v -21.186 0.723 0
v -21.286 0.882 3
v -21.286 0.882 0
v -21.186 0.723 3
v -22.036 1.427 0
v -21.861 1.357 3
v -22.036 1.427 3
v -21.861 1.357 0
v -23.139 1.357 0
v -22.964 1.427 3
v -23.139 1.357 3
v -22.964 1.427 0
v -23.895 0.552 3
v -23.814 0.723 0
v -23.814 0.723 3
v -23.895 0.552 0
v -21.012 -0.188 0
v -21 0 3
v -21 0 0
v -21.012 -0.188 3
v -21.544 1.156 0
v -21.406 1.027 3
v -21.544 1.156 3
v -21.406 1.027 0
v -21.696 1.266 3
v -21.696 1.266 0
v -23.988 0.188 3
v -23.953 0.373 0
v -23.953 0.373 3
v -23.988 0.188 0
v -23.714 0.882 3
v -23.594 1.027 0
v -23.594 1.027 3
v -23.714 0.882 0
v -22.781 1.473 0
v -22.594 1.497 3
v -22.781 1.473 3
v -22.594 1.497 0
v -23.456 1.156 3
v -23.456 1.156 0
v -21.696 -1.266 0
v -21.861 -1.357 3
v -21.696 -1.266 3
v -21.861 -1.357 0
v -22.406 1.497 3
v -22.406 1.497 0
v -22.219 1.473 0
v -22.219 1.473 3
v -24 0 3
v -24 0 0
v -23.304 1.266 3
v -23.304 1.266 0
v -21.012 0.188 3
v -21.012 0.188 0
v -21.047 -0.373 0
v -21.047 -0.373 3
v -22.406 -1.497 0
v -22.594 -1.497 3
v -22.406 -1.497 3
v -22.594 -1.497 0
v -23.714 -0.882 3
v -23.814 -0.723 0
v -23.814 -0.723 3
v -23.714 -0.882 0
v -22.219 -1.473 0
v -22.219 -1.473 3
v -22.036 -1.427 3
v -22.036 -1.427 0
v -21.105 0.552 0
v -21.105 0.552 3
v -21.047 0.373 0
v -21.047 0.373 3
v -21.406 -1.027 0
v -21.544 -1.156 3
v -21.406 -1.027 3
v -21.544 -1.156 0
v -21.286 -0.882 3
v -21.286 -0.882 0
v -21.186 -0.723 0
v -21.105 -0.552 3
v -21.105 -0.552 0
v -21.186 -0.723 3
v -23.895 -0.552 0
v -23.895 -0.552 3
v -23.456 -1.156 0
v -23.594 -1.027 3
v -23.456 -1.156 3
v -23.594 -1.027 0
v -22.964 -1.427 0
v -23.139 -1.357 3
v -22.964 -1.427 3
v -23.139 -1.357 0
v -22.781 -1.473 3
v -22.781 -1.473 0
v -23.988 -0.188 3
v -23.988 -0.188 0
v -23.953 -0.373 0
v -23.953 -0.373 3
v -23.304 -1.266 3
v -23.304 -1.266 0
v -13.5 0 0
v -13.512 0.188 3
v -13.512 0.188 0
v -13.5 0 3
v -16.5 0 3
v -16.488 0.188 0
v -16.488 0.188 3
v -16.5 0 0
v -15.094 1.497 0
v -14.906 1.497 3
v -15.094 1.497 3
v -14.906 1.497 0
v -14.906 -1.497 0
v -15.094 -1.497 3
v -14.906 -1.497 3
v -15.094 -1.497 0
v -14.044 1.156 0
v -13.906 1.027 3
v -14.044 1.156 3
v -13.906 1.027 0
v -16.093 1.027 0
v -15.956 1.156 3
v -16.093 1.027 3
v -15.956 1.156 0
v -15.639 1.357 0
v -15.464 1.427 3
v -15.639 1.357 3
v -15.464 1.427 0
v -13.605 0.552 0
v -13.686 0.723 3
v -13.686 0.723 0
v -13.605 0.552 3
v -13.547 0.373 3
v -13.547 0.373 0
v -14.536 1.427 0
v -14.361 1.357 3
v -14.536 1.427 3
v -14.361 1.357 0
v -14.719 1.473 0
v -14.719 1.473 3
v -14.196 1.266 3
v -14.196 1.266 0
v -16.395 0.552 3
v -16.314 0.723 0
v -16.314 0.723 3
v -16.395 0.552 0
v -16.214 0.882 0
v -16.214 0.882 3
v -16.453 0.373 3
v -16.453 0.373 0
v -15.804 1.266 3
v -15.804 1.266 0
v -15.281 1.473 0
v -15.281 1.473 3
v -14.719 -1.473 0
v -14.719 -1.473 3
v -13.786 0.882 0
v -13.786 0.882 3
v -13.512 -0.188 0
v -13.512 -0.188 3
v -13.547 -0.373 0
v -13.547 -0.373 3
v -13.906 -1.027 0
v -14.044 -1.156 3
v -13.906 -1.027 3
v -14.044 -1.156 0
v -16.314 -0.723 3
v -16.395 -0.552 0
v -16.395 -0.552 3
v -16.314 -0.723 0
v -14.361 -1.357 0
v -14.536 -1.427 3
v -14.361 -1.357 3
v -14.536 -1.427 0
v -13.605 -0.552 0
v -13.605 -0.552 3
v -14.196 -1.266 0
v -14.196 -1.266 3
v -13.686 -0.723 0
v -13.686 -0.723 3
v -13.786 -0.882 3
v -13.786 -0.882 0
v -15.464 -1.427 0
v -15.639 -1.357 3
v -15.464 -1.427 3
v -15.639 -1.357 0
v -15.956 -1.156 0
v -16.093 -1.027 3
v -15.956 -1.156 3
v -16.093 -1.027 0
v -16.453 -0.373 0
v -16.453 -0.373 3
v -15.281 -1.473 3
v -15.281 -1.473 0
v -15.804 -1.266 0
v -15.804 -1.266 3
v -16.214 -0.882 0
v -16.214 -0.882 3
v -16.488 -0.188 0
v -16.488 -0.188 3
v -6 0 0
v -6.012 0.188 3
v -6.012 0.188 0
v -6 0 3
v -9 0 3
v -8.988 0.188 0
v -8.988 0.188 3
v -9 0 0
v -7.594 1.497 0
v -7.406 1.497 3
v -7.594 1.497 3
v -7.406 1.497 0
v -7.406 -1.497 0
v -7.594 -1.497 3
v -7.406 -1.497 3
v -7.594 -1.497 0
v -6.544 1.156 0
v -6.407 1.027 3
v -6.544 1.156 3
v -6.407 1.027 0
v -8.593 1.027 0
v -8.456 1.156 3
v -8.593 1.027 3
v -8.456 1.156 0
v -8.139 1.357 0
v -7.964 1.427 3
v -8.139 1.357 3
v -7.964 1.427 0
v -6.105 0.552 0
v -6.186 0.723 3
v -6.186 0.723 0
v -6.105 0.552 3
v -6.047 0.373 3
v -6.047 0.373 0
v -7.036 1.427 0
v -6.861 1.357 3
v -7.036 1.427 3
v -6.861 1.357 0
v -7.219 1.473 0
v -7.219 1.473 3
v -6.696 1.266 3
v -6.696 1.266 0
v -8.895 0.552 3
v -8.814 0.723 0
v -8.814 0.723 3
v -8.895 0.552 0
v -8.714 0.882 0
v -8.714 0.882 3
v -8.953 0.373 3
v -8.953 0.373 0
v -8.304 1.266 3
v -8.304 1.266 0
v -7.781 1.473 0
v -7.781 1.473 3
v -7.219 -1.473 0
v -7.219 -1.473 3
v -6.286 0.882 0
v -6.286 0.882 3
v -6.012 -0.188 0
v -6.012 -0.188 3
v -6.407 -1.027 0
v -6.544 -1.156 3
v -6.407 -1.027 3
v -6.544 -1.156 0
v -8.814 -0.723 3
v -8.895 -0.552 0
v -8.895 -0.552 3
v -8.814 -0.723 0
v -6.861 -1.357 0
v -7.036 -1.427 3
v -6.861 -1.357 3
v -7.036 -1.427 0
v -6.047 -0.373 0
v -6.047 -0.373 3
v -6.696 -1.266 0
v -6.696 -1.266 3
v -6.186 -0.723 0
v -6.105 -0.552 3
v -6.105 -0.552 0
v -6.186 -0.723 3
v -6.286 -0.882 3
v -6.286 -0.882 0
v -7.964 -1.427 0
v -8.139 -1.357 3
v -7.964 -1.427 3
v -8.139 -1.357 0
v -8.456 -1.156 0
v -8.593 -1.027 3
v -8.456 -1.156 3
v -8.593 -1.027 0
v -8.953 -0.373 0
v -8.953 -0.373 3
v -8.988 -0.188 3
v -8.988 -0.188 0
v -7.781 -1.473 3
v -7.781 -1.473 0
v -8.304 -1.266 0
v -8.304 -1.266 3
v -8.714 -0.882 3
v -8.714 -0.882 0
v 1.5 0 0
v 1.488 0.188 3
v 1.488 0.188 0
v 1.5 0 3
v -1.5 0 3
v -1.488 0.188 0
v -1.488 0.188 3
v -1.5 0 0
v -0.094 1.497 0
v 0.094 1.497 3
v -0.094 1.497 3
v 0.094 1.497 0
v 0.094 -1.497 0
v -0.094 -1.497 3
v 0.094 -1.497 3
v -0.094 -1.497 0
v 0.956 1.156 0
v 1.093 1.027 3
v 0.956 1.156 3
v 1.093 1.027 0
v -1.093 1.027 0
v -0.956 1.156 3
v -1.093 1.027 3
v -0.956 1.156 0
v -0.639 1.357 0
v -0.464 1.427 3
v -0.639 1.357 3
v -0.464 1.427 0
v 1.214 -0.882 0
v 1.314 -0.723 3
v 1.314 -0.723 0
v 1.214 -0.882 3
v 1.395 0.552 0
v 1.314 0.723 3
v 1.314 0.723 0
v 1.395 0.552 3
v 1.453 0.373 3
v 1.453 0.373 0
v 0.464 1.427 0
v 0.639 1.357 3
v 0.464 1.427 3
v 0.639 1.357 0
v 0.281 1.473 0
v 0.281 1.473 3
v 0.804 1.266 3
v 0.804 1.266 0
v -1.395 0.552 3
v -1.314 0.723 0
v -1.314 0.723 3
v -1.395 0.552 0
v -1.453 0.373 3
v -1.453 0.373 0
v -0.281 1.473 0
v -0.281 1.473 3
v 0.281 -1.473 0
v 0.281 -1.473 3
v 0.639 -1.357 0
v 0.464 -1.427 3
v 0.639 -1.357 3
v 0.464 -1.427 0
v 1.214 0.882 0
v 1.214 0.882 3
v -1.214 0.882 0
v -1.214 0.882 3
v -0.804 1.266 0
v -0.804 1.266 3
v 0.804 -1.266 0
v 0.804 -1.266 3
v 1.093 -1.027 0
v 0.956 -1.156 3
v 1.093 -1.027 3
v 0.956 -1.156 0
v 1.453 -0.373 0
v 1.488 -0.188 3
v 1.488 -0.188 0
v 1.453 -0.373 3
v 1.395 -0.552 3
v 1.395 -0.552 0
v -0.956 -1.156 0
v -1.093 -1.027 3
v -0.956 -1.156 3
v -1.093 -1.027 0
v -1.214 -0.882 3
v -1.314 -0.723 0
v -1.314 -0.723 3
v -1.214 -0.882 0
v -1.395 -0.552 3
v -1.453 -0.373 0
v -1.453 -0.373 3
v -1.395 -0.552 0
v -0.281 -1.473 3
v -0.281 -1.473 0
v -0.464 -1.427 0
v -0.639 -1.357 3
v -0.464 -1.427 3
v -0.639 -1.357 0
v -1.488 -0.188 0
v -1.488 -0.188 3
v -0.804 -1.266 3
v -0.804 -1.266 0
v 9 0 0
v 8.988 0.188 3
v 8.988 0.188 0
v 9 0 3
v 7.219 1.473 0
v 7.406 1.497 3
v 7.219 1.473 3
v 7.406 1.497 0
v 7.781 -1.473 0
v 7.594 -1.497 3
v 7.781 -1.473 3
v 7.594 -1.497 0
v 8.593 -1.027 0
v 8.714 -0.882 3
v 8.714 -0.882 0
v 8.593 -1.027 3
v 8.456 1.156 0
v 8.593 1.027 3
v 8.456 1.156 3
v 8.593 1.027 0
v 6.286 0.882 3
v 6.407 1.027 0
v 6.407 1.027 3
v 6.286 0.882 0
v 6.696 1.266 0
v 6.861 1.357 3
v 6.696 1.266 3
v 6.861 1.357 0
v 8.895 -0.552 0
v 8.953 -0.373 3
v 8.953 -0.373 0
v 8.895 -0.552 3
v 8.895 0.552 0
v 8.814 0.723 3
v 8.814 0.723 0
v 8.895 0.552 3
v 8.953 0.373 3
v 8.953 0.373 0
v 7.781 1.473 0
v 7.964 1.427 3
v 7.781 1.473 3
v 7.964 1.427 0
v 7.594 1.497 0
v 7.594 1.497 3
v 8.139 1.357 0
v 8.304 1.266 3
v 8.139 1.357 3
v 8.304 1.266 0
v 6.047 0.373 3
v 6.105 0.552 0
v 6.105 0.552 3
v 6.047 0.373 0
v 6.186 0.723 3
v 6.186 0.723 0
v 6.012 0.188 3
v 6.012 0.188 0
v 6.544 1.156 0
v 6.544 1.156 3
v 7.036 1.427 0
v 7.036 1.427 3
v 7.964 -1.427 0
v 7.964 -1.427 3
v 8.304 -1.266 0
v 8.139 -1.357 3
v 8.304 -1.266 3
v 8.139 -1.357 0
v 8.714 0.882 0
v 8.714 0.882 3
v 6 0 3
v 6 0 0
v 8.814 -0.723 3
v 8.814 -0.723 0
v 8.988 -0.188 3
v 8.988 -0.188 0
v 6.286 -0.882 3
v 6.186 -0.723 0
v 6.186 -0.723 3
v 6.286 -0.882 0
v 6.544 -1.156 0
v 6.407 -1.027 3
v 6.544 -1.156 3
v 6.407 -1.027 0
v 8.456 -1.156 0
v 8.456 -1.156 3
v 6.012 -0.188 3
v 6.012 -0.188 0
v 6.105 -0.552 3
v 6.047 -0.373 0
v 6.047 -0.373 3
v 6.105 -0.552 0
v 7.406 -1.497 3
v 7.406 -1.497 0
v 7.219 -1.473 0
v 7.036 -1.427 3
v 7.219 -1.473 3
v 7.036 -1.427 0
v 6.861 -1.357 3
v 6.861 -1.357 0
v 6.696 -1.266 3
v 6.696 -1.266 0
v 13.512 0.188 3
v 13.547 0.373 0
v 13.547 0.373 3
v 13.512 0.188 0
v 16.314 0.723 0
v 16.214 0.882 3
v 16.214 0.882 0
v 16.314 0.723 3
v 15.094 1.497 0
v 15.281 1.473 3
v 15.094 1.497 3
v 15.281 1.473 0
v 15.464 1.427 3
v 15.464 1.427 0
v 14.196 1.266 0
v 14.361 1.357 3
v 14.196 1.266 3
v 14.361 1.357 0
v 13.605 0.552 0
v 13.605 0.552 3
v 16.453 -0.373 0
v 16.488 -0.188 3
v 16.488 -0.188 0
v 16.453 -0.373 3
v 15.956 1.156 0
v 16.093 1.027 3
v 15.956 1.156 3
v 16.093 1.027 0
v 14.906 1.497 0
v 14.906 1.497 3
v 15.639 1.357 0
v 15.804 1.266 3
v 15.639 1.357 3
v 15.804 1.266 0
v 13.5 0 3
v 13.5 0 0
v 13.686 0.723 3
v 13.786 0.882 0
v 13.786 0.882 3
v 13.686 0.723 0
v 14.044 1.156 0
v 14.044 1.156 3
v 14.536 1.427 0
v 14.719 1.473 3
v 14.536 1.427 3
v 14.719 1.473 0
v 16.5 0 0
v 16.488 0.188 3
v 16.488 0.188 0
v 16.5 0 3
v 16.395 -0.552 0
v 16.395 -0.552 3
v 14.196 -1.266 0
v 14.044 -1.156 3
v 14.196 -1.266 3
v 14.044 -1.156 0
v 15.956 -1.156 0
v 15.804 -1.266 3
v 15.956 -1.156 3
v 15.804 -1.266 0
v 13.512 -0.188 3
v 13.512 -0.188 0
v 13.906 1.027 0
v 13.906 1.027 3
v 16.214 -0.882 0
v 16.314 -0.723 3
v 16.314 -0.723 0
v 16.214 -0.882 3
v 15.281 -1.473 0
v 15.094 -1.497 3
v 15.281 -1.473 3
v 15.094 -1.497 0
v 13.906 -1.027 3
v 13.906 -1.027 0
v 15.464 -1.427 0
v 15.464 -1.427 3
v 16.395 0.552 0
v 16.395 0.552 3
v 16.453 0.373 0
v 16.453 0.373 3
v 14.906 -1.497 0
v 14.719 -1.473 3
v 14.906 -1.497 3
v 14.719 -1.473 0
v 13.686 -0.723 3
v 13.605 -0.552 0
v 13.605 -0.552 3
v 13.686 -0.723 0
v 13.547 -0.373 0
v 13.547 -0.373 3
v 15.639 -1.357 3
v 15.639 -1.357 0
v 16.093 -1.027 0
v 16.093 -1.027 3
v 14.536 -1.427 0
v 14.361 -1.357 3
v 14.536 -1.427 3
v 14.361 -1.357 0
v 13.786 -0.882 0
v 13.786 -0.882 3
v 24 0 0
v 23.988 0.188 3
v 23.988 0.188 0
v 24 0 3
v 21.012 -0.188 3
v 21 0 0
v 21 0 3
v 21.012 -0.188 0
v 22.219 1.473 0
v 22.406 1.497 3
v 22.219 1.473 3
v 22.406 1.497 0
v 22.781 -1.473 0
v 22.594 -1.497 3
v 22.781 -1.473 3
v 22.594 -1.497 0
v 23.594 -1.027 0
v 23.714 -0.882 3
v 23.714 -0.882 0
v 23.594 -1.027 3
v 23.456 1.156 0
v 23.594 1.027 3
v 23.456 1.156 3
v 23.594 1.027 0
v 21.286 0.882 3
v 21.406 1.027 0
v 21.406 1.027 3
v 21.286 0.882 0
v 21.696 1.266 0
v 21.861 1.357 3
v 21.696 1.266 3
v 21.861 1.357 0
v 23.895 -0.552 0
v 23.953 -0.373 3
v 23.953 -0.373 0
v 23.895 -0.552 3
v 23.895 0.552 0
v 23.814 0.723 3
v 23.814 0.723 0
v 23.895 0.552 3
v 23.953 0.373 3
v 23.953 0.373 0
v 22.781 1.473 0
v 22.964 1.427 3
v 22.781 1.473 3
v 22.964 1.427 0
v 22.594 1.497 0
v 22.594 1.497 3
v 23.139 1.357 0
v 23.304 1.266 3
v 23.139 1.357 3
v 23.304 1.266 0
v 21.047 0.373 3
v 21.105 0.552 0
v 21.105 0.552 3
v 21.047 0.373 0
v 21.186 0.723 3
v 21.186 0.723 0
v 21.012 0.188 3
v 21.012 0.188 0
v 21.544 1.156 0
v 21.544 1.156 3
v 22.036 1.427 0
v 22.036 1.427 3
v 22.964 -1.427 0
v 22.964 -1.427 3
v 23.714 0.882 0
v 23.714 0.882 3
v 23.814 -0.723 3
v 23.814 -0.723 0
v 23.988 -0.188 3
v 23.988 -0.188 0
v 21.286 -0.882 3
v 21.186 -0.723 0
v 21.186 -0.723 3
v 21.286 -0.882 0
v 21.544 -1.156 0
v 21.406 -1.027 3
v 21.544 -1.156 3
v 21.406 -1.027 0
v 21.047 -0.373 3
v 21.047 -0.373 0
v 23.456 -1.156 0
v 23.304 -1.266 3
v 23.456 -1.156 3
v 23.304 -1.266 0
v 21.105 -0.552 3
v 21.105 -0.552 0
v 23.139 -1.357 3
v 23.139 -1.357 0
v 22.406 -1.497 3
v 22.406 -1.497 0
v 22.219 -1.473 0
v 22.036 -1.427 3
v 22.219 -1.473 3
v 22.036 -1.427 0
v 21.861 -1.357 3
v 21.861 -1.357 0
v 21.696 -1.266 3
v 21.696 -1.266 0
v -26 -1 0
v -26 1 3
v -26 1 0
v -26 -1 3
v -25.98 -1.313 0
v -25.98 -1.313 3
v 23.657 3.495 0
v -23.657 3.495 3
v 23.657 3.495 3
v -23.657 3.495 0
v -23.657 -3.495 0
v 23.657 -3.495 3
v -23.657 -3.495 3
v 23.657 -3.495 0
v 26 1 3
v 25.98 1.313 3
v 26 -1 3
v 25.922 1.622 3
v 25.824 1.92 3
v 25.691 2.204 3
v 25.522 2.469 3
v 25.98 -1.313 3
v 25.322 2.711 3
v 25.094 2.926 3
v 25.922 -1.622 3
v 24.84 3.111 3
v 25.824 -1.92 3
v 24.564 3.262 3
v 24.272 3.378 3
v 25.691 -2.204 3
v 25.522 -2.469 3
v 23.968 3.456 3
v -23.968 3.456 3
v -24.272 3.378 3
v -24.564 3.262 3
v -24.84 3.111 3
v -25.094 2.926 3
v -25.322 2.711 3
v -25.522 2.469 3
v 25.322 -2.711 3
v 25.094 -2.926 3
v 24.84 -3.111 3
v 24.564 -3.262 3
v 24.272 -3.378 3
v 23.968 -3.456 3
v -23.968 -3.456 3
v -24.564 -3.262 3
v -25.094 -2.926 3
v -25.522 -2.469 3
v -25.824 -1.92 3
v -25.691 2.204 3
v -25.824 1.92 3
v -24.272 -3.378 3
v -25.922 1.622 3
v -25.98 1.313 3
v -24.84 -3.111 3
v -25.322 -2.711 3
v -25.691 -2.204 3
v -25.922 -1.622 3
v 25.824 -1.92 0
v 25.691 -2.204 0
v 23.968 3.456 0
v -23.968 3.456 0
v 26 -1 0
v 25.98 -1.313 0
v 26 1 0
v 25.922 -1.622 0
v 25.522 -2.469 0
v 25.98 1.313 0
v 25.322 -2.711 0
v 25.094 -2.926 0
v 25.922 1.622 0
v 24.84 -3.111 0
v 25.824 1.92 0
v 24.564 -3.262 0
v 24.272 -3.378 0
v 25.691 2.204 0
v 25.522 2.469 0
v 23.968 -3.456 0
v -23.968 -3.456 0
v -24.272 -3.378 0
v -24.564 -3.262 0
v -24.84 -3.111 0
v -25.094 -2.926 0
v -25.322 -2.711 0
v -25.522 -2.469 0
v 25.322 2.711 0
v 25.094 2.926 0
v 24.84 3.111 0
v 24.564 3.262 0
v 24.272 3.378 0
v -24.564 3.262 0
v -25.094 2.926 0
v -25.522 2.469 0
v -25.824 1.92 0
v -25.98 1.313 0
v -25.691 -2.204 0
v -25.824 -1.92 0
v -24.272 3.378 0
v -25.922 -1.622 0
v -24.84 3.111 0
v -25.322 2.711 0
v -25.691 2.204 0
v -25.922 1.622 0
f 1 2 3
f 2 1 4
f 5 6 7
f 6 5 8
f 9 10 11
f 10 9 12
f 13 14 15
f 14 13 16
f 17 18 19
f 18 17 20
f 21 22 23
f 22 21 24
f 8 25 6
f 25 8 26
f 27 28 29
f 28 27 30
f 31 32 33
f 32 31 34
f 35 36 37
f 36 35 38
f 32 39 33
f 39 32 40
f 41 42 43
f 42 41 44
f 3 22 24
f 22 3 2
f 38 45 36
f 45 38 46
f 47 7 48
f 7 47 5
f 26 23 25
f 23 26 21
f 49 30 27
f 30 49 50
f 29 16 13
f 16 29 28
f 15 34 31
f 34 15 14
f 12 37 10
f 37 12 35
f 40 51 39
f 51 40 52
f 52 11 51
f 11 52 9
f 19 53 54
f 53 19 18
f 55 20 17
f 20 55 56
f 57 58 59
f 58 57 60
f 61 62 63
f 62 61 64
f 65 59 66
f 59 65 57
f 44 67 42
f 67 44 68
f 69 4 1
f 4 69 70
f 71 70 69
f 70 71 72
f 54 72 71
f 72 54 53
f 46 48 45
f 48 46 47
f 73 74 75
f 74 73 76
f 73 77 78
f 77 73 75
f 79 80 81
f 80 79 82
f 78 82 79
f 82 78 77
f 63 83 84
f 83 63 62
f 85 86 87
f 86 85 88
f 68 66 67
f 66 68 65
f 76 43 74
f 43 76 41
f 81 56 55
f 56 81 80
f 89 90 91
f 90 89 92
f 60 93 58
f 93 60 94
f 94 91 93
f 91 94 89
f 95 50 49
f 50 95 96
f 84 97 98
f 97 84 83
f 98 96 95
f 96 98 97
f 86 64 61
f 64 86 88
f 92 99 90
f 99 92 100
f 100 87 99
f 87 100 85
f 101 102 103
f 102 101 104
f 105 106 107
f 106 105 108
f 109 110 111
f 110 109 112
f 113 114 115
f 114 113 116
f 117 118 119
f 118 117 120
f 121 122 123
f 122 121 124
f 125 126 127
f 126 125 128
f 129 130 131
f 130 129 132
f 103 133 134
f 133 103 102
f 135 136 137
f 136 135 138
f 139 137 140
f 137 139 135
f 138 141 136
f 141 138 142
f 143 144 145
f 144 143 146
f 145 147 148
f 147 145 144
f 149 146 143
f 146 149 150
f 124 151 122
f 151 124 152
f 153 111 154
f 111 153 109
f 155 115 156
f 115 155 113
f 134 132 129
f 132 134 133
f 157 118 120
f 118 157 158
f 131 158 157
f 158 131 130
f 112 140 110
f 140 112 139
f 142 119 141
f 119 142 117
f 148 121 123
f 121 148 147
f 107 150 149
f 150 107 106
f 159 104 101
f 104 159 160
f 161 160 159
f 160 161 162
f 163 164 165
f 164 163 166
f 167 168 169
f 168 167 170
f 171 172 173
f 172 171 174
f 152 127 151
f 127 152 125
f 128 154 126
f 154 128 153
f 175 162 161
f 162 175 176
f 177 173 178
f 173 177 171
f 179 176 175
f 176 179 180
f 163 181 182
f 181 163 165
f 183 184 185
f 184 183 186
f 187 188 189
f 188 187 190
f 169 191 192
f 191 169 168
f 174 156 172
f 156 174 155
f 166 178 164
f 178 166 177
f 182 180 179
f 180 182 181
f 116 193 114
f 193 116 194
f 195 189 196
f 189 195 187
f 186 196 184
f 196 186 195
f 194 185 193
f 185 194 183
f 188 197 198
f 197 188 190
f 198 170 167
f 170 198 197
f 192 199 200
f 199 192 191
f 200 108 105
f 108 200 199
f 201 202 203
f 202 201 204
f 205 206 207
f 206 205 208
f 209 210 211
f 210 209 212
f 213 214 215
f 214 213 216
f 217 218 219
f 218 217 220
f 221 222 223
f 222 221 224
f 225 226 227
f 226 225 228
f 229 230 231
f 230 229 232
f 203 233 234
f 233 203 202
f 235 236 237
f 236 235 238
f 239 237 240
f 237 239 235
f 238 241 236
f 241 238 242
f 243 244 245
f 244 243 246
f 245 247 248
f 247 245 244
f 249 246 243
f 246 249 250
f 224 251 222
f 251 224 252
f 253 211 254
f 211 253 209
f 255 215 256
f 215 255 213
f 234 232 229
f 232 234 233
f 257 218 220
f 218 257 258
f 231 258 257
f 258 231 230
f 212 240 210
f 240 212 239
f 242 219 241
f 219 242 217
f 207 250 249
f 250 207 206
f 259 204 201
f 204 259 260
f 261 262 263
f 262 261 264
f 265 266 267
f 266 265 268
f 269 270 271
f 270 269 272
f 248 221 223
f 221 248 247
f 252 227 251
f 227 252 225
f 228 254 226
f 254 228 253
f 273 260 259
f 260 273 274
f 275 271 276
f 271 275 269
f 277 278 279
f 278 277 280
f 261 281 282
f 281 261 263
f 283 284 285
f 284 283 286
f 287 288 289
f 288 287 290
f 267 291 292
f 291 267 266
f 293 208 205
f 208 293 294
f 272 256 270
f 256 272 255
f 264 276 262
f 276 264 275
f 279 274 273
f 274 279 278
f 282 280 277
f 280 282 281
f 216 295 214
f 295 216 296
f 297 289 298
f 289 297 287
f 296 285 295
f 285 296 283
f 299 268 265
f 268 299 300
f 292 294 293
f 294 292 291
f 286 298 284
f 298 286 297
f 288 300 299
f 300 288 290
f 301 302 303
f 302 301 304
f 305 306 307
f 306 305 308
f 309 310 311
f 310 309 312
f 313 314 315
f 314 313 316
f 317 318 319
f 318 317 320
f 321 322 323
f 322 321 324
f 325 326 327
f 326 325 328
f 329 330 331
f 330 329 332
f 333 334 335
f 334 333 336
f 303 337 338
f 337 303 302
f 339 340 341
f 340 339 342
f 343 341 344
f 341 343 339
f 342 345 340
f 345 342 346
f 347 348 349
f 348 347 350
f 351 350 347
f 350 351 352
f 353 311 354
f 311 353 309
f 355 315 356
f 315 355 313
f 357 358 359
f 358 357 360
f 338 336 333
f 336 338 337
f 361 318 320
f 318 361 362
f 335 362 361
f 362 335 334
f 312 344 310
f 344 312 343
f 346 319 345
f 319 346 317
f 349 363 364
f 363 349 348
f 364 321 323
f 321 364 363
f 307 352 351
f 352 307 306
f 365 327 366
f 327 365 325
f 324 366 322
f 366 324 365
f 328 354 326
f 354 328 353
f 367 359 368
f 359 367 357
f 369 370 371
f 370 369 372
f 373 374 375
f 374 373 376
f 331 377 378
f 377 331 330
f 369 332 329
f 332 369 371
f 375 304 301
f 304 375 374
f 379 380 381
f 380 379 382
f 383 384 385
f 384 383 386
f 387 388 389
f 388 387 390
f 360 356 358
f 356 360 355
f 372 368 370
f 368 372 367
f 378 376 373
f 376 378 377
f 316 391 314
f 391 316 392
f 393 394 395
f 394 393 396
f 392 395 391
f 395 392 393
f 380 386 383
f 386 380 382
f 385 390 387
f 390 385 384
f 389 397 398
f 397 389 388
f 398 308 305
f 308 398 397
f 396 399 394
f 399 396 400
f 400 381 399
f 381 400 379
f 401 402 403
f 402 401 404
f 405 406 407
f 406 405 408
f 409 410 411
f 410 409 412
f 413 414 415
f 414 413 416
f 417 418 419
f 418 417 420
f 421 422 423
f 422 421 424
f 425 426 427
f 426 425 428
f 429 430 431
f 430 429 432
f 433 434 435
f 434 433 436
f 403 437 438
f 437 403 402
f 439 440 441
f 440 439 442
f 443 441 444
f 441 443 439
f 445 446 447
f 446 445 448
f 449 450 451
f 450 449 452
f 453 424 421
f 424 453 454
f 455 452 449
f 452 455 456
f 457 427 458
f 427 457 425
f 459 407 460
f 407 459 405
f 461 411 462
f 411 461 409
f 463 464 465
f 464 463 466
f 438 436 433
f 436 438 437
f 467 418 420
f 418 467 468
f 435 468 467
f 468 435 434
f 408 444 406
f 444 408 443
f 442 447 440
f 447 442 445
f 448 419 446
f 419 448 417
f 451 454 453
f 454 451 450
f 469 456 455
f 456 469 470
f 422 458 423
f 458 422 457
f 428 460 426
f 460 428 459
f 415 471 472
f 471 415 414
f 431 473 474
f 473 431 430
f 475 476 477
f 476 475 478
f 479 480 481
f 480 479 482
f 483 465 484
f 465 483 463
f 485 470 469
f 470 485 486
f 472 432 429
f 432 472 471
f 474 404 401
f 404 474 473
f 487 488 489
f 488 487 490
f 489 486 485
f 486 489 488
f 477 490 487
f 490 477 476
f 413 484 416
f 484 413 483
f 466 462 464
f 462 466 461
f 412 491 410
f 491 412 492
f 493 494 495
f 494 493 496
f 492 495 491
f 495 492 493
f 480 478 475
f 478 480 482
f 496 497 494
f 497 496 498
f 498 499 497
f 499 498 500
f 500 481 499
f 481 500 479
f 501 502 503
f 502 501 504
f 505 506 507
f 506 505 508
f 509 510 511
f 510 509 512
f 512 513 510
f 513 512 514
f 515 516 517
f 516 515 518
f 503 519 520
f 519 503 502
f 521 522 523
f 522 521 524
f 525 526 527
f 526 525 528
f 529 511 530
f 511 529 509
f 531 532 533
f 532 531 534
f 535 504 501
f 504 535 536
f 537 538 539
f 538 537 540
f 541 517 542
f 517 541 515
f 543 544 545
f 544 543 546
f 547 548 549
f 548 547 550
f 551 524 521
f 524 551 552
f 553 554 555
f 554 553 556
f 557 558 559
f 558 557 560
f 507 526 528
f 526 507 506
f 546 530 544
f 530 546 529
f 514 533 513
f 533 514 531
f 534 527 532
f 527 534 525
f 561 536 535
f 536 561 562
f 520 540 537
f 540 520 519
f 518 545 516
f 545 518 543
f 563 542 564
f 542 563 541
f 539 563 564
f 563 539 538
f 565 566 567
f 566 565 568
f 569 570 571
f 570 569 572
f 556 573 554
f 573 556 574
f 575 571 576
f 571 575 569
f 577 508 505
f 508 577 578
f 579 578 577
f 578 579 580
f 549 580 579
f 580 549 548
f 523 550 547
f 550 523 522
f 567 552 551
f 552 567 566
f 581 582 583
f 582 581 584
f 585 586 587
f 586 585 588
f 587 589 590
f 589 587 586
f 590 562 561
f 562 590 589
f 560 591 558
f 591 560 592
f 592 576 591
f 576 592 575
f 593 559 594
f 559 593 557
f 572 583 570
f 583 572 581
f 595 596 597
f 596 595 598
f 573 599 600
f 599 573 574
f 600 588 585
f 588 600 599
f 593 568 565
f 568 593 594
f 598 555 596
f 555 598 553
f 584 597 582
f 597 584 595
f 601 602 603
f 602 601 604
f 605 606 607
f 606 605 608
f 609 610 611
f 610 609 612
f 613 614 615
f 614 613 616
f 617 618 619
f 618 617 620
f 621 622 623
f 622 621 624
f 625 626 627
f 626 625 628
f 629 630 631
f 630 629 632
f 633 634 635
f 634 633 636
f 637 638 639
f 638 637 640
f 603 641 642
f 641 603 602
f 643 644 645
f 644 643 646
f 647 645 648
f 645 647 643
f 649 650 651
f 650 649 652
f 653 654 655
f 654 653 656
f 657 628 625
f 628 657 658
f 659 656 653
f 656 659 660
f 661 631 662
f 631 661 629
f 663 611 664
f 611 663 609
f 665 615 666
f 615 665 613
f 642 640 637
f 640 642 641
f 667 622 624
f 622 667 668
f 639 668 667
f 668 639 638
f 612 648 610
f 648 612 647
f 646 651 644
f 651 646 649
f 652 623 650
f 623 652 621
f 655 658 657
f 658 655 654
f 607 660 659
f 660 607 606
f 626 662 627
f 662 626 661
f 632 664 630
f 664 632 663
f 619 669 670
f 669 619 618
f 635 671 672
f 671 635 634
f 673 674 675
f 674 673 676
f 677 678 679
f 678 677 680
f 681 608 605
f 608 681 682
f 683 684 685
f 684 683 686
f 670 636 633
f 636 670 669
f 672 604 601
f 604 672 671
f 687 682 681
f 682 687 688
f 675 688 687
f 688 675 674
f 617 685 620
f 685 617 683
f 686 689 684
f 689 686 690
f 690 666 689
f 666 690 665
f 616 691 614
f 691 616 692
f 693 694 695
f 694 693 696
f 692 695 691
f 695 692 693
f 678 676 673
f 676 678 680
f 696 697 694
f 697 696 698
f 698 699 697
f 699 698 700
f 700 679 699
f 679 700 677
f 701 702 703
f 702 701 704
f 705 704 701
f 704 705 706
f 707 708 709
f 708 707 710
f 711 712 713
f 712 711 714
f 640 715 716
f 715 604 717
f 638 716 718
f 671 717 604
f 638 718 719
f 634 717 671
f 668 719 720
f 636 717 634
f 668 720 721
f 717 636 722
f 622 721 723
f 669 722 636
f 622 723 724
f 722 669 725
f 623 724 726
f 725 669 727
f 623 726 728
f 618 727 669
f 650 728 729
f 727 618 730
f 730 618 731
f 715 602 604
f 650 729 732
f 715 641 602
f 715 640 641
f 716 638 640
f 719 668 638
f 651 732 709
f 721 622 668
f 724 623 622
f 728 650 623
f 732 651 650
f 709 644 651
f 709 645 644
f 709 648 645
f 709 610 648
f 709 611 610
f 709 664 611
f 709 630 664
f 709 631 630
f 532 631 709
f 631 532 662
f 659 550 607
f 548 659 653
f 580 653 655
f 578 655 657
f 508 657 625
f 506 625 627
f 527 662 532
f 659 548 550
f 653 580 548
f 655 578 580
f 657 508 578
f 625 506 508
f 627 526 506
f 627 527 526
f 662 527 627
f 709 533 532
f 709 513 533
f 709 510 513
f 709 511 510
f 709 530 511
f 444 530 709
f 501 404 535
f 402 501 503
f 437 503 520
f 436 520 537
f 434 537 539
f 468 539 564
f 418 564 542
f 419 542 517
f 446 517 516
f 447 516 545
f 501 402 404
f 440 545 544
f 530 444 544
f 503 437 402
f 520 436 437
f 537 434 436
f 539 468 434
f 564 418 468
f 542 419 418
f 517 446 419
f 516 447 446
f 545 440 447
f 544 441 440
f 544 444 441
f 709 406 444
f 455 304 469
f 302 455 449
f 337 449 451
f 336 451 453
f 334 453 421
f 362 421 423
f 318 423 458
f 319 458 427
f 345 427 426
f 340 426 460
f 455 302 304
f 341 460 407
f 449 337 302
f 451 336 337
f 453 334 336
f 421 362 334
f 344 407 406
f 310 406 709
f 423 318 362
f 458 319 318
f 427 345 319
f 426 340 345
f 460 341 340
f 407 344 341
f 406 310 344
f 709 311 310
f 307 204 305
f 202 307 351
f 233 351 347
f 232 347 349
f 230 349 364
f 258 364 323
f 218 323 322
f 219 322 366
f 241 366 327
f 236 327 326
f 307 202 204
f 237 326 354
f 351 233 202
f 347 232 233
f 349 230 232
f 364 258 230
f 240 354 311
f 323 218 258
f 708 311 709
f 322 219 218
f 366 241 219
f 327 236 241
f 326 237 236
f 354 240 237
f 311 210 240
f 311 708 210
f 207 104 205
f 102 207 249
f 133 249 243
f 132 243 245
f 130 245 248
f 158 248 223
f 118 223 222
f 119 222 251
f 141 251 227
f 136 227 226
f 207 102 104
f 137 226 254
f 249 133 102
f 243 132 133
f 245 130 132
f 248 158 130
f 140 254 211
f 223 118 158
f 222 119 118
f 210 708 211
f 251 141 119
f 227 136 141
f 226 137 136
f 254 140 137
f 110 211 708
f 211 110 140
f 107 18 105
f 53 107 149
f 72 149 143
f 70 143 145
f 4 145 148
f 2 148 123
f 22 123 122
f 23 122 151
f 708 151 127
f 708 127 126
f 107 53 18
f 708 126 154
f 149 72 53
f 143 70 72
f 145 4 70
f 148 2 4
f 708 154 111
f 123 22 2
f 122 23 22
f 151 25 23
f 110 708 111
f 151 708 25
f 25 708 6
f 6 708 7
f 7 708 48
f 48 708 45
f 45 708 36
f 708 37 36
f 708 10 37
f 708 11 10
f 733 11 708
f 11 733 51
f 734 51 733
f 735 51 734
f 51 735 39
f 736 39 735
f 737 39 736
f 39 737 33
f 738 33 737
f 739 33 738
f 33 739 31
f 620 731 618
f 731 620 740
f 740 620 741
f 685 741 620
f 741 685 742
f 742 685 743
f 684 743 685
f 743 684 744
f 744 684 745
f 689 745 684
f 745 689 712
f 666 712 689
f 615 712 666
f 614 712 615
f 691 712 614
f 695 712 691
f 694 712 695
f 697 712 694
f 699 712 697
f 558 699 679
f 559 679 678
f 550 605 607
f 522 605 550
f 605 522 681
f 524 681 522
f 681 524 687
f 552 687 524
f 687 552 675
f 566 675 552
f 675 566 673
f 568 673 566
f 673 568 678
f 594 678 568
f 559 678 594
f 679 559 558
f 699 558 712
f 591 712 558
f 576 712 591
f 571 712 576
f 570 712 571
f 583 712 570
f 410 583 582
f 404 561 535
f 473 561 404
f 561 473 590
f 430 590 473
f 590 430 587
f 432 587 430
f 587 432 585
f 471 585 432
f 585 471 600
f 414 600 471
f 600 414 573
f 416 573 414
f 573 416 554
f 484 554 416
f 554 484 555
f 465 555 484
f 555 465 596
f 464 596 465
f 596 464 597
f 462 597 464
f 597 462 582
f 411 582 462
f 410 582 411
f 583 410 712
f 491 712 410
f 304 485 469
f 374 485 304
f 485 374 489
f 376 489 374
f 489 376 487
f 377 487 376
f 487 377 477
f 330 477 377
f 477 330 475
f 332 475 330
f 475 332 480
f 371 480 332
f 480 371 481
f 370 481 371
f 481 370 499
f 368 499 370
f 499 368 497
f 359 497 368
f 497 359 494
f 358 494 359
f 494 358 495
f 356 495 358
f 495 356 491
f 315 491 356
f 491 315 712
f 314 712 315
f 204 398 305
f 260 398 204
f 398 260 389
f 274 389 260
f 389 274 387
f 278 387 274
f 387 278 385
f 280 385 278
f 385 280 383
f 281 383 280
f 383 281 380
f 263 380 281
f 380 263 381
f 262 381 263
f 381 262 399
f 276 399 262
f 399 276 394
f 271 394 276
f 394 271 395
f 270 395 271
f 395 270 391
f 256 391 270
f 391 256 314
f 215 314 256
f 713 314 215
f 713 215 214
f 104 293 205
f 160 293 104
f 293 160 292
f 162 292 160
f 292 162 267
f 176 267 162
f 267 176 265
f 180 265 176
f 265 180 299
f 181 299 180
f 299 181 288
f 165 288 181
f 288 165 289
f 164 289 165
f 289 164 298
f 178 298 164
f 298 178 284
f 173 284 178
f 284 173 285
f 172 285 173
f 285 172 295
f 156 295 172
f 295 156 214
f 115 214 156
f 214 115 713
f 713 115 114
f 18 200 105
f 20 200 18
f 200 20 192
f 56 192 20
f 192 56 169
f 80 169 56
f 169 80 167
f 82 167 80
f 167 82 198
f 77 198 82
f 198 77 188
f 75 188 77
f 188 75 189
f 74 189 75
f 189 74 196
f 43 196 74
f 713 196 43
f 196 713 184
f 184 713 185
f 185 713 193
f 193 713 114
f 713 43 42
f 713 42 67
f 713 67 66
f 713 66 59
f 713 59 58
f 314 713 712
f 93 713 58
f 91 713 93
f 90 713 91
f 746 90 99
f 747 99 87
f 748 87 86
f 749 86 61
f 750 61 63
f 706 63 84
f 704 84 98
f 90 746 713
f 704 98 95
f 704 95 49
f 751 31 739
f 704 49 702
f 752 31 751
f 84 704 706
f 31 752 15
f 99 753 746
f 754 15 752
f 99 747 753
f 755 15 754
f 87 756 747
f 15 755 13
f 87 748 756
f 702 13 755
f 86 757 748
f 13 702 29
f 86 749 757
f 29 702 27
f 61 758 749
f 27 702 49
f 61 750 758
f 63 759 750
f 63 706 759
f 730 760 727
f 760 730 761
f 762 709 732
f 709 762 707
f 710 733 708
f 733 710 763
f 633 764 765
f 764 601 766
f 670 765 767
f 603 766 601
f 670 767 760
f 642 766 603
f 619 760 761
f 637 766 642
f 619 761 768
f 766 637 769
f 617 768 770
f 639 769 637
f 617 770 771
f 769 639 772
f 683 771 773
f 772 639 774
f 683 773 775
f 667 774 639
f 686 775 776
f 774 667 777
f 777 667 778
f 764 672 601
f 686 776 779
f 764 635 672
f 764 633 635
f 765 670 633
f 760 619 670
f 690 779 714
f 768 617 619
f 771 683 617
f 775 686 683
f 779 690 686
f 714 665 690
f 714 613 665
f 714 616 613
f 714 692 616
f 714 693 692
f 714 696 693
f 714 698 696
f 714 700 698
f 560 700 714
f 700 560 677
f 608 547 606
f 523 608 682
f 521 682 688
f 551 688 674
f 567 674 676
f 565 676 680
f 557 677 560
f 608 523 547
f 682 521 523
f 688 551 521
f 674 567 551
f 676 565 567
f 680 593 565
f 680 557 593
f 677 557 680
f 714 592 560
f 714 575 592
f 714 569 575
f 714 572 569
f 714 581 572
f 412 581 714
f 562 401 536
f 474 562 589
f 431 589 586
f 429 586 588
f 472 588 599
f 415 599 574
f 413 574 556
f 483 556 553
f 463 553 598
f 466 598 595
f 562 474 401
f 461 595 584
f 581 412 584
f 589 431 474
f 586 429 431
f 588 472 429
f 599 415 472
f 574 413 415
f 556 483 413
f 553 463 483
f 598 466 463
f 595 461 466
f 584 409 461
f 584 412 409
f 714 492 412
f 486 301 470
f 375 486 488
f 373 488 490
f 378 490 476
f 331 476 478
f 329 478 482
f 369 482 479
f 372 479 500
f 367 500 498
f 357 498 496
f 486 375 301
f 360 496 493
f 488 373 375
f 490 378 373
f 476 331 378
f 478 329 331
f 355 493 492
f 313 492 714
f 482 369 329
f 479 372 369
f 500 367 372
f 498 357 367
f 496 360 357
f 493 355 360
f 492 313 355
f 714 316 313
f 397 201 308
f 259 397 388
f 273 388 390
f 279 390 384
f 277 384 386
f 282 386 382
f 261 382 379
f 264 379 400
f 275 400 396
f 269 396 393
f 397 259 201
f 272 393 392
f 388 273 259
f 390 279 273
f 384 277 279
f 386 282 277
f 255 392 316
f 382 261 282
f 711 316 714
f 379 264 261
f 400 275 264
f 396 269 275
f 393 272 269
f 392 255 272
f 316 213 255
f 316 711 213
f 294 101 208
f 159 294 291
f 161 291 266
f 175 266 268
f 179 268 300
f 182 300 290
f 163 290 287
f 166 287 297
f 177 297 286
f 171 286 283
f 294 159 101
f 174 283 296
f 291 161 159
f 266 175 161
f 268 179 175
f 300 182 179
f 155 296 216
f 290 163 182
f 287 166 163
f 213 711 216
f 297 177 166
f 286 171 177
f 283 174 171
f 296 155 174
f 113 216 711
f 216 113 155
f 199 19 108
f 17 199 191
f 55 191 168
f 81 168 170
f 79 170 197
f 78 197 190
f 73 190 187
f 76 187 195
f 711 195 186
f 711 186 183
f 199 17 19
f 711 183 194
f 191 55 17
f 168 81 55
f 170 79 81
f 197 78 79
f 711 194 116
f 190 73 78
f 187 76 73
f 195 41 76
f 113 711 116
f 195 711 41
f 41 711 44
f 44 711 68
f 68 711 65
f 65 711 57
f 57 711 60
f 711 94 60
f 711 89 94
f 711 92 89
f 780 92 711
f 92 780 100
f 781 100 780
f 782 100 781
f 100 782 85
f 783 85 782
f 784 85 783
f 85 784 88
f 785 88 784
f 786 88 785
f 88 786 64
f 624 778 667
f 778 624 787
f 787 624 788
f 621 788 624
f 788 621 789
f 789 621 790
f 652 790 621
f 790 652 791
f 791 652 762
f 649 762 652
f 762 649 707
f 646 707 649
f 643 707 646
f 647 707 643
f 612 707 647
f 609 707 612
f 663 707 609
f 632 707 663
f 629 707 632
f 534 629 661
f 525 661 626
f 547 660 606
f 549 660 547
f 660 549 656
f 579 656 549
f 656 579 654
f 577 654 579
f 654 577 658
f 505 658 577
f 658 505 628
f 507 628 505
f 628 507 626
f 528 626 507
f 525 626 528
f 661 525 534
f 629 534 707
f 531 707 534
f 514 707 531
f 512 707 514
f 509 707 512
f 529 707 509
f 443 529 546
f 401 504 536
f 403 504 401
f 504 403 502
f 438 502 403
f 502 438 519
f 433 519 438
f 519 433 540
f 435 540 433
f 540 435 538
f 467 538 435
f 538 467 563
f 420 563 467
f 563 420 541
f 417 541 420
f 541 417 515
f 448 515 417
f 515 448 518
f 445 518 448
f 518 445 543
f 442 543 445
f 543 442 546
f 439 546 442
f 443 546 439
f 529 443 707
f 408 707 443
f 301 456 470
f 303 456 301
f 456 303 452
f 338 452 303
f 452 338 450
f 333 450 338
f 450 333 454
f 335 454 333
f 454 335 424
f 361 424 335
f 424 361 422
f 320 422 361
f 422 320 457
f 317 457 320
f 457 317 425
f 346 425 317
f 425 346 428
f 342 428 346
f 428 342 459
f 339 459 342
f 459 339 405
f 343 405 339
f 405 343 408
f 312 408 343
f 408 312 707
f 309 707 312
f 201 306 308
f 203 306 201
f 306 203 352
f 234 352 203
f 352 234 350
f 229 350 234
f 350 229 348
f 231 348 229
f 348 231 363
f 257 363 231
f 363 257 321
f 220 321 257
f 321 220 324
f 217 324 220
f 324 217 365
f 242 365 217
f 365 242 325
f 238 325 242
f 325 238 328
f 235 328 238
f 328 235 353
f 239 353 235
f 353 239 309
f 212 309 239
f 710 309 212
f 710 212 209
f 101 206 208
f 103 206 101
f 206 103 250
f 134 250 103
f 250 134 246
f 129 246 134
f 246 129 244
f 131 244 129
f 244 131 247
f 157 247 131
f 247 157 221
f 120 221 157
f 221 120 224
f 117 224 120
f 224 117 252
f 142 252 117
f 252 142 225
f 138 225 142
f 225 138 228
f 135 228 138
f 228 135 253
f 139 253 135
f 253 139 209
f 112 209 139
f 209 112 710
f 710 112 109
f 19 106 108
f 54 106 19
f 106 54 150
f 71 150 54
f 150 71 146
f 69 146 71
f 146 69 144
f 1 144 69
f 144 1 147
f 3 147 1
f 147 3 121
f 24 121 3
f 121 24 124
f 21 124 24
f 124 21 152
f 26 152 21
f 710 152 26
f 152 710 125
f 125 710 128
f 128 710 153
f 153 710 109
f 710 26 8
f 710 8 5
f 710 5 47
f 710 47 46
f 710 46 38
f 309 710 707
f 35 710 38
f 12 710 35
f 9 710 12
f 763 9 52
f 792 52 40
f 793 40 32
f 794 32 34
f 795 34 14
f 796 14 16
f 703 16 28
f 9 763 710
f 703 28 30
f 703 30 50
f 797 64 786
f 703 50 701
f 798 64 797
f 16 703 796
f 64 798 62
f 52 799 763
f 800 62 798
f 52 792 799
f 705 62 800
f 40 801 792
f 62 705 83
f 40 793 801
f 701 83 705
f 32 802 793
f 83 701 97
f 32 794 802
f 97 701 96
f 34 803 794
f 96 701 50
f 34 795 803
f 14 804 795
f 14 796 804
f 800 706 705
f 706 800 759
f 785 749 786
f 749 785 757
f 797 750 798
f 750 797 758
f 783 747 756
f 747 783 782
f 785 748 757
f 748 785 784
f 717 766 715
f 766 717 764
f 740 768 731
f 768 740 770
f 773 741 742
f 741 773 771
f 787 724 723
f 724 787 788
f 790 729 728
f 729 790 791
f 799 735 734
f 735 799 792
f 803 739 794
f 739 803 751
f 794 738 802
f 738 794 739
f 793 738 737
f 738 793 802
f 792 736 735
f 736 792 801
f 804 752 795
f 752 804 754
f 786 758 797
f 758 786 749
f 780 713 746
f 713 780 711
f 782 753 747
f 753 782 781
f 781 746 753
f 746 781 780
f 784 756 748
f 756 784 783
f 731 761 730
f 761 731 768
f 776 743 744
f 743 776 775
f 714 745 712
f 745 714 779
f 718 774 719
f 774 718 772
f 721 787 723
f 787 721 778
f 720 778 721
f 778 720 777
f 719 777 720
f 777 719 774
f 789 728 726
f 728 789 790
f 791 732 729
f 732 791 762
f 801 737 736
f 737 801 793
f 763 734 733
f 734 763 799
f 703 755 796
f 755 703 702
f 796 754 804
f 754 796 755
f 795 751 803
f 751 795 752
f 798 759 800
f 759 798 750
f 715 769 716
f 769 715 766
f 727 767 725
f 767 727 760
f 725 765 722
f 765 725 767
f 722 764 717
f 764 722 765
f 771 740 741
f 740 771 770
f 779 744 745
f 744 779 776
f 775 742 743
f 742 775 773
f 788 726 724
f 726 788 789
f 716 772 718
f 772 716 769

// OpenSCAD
$fn = 50;


difference() {
	union() {
		translate(v = [0, 0, 0]) {
			rotate(a = [0, 0, 0]) {
				hull() {
					translate(v = [-23.5000000000, 1.0000000000, 0]) {
						rotate(a = [0, 0, 0]) {
							translate(v = [0, 0, 0]) {
								rotate(a = [0, 0, 0]) {
									cylinder(h = 3, r = 2.5000000000);
								}
							}
						}
					}
					translate(v = [23.5000000000, 1.0000000000, 0]) {
						rotate(a = [0, 0, 0]) {
							translate(v = [0, 0, 0]) {
								rotate(a = [0, 0, 0]) {
									cylinder(h = 3, r = 2.5000000000);
								}
							}
						}
					}
					translate(v = [-23.5000000000, -1.0000000000, 0]) {
						rotate(a = [0, 0, 0]) {
							translate(v = [0, 0, 0]) {
								rotate(a = [0, 0, 0]) {
									cylinder(h = 3, r = 2.5000000000);
								}
							}
						}
					}
					translate(v = [23.5000000000, -1.0000000000, 0]) {
						rotate(a = [0, 0, 0]) {
							translate(v = [0, 0, 0]) {
								rotate(a = [0, 0, 0]) {
									cylinder(h = 3, r = 2.5000000000);
								}
							}
						}
					}
				}
			}
		}
	}
	union() {
		translate(v = [-22.5000000000, 0.0000000000, 0]) {
			rotate(a = [0, 0, 0]) {
				translate(v = [0, 0, -50]) {
					rotate(a = [0, 0, 0]) {
						cylinder(h = 100, r = 1.5000000000);
					}
				}
			}
		}
		translate(v = [-15.0000000000, 0.0000000000, 0]) {
			rotate(a = [0, 0, 0]) {
				translate(v = [0, 0, -50]) {
					rotate(a = [0, 0, 0]) {
						cylinder(h = 100, r = 1.5000000000);
					}
				}
			}
		}
		translate(v = [-7.5000000000, 0.0000000000, 0]) {
			rotate(a = [0, 0, 0]) {
				translate(v = [0, 0, -50]) {
					rotate(a = [0, 0, 0]) {
						cylinder(h = 100, r = 1.5000000000);
					}
				}
			}
		}
		translate(v = [0.0000000000, 0.0000000000, 0]) {
			rotate(a = [0, 0, 0]) {
				translate(v = [0, 0, -50]) {
					rotate(a = [0, 0, 0]) {
						cylinder(h = 100, r = 1.5000000000);
					}
				}
			}
		}
		translate(v = [7.5000000000, 0.0000000000, 0]) {
			rotate(a = [0, 0, 0]) {
				translate(v = [0, 0, -50]) {
					rotate(a = [0, 0, 0]) {
						cylinder(h = 100, r = 1.5000000000);
					}
				}
			}
		}
		translate(v = [15.0000000000, 0.0000000000, 0]) {
			rotate(a = [0, 0, 0]) {
				translate(v = [0, 0, -50]) {
					rotate(a = [0, 0, 0]) {
						cylinder(h = 100, r = 1.5000000000);
					}
				}
			}
		}
		translate(v = [22.5000000000, 0.0000000000, 0]) {
			rotate(a = [0, 0, 0]) {
				translate(v = [0, 0, -50]) {
					rotate(a = [0, 0, 0]) {
						cylinder(h = 100, r = 1.5000000000);
					}
				}
			}
		}
	}
}
